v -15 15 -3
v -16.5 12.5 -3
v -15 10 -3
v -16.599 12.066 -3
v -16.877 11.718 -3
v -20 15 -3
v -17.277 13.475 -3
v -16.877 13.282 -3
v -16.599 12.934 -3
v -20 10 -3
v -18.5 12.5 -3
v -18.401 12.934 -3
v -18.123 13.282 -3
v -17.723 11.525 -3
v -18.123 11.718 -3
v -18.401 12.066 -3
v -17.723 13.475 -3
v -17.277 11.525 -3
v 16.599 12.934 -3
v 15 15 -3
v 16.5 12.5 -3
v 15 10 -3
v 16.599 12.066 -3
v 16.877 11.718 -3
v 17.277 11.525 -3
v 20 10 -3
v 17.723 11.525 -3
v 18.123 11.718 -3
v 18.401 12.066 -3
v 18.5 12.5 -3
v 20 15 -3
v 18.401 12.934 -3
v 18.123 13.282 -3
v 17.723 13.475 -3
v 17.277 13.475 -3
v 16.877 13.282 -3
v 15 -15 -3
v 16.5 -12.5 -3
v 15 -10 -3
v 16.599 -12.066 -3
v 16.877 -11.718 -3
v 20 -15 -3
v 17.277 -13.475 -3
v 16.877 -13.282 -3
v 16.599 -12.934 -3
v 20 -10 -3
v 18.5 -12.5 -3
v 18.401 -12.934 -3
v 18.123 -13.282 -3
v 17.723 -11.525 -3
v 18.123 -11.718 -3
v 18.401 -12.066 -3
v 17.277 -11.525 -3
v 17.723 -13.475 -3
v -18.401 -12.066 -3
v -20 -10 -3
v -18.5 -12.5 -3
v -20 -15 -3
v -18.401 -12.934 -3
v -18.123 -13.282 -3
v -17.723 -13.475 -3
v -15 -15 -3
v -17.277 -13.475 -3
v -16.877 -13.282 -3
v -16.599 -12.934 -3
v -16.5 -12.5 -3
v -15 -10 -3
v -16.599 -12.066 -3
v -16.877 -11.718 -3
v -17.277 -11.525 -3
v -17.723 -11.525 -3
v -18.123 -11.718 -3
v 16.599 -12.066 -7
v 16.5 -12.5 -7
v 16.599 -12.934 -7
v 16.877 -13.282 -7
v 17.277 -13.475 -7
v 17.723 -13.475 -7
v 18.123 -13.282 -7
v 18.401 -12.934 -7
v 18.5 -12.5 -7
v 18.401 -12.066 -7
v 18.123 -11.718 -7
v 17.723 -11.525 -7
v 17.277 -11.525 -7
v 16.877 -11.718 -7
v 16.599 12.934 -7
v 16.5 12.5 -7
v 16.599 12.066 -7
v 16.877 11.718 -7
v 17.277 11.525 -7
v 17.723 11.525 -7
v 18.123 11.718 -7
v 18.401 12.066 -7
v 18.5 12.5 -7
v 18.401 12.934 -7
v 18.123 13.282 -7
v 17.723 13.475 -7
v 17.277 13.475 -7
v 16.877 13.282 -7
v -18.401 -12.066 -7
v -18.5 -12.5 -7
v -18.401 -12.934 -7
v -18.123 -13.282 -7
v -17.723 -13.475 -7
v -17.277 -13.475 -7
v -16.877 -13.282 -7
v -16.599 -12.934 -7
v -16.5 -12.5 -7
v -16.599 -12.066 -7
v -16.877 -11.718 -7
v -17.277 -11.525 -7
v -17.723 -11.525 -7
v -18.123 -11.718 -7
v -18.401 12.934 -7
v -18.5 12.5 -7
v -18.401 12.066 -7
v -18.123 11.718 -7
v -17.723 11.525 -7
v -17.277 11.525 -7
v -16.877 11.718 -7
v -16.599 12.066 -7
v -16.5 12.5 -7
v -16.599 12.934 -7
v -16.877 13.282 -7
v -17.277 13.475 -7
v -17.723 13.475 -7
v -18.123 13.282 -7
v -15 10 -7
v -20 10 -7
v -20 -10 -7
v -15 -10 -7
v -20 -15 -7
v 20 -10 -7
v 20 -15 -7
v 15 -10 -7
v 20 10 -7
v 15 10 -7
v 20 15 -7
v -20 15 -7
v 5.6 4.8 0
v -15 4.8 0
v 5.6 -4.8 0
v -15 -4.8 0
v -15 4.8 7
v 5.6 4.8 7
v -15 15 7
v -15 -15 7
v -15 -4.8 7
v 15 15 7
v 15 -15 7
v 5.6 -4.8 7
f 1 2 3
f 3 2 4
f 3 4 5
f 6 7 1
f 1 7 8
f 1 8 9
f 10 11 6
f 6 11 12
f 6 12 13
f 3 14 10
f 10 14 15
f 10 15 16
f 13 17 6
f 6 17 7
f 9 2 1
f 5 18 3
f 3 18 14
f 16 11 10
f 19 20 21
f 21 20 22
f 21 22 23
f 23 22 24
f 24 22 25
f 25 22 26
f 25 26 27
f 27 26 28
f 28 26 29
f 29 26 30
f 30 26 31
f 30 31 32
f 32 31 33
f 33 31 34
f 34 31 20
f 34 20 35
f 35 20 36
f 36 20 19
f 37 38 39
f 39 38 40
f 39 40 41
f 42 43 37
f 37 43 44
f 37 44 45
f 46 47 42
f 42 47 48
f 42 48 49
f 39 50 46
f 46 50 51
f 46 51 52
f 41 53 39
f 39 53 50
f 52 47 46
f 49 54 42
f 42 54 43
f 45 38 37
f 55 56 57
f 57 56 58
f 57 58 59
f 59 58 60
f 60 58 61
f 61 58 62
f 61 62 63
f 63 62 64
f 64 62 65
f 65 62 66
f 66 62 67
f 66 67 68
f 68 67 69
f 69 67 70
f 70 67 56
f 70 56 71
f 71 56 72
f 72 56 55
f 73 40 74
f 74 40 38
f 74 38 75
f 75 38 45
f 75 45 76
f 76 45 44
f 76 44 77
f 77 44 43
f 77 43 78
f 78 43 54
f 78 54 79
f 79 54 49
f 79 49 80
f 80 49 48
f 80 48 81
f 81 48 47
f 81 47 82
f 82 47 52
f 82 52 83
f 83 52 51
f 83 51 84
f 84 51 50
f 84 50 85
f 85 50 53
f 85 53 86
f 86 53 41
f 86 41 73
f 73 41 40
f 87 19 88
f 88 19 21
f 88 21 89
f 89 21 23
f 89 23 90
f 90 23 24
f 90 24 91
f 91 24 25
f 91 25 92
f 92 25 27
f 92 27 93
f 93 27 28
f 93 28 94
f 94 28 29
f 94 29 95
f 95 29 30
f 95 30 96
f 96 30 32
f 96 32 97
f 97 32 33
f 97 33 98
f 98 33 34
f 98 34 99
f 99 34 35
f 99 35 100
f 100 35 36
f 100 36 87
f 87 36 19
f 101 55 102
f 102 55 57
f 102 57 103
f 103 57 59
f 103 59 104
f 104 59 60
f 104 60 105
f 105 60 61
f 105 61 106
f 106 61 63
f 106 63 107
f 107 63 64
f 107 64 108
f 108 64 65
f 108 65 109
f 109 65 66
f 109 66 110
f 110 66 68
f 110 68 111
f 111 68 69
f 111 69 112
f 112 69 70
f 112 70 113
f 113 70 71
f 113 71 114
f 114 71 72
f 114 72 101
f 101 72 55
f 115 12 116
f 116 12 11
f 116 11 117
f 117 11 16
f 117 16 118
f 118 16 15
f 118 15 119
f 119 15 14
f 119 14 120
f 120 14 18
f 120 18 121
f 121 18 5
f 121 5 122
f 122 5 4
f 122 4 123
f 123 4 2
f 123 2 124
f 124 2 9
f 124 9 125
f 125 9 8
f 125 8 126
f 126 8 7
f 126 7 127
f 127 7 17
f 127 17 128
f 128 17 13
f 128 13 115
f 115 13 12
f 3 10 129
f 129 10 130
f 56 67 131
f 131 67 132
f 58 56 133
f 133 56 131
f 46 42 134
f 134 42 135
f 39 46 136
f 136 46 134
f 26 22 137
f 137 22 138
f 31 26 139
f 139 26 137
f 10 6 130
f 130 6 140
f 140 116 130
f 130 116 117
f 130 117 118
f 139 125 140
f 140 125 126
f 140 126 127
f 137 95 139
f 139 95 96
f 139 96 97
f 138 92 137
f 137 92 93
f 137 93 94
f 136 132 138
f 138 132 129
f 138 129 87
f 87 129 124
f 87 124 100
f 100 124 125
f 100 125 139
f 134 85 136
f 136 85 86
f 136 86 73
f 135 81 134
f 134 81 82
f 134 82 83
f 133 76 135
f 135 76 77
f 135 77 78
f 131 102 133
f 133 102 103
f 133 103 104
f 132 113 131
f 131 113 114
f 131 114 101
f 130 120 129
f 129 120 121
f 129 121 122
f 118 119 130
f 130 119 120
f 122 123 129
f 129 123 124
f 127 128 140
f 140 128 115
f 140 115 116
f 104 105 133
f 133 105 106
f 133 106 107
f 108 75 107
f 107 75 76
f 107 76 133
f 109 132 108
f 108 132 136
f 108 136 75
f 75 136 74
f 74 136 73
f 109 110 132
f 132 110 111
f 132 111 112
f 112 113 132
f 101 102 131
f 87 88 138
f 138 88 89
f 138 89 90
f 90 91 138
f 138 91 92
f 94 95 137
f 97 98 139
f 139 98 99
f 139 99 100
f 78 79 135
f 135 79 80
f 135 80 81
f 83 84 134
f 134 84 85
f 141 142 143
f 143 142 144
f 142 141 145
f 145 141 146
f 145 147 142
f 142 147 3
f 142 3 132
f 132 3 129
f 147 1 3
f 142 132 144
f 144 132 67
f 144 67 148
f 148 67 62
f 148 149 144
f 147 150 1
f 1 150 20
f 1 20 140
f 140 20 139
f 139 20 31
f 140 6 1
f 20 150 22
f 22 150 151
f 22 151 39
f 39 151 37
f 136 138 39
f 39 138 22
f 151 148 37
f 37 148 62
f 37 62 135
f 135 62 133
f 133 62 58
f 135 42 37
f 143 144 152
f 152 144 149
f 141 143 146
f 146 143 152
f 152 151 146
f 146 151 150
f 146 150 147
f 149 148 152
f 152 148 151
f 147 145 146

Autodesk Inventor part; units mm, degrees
ref_plane "YZ Plane" through (0, 0, 0) normal (1, 0, 0) x (0, 1, 0)
ref_plane "XZ Plane" through (0, 0, 0) normal (0, 1, 0) x (-1, 0, 0)
ref_plane "XY Plane" through (0, 0, 0) normal (0, 0, 1) x (1, 0, 0)
sketch "Skizze1" plane through (0, 0, 0) normal (0, 0, 1) x (1, 0, 0)
  line L0 (-15, 15) -> (15, 15)
  line L1 (15, 15) -> (15, -15)
  line L2 (15, -15) -> (-15, -15)
  line L3 (-15, 4.8) -> (5.6, 4.8)
  line L4 (5.6, 4.8) -> (5.6, -4.8)
  line L5 (5.6, -4.8) -> (-15, -4.8)
  line L6 (-15, -15) -> (-15, -4.8)
  line L7 (-15, 4.8) -> (-15, 15)
  point P0 (0, 0)
  dimension "d0" = 30
  dimension "d1" = 30
  dimension "d2" = 15
  dimension "d3" = 15
  dimension "d4" = 9.6
  dimension "d5" = 4.8
  dimension "d6" = 5.6
extrude "Extrusion1" add sketch "Skizze1" along normal blind 7
sketch "Skizze2" plane through (0, 0, 0) normal (0, 0, -1) x (-1, 0, 0)
  line L0 (15, -15) -> (-15, -15) projected
  line L1 (15, -15) -> (-15, -15)
  line L2 (-15, -15) -> (-15, 15)
  line L3 (-15, 15) -> (15, 15)
  line L4 (15, 15) -> (15, -15)
  point P0 (0, 0)
extrude "Extrusion2" add sketch "Skizze2" along normal blind 3
sketch "Skizze3" plane through (0, 0, -3) normal (0, 0, -1) x (-1, 0, 0)
  line L0 (-15, 15) -> (15, 15) projected
  line L1 (-15, 15) -> (15, 15)
  line L2 (15, 10) -> (15, -10)
  line L3 (15, -15) -> (-15, -15)
  line L4 (15, 15) -> (20, 15)
  line L5 (20, 15) -> (20, 10)
  line L6 (20, 10) -> (15, 10)
  line L7 (-15, 0) -> (15, 0) construction
  line L8 (15, -4.8) -> (15, 4.8) projected
  line L9 (15, -15) -> (-15, -15) projected
  line L10 (0, -15) -> (0, 15) construction
  line L11 (15, -15) -> (20, -15)
  line L12 (20, -15) -> (20, -10)
  line L13 (20, -10) -> (15, -10)
  line L14 (-15, 15) -> (-20, 15)
  line L15 (-20, 15) -> (-20, 10)
  line L16 (-20, 10) -> (-15, 10)
  line L17 (-15, -10) -> (-15, 10)
  line L18 (-15, -15) -> (-20, -15)
  line L19 (-20, -15) -> (-20, -10)
  line L20 (-20, -10) -> (-15, -10)
  circle A0 centre (17.5, 12.5) radius 1
  circle A1 centre (17.5, -12.5) radius 1
  circle A2 centre (-17.5, 12.5) radius 1
  circle A3 centre (-17.5, -12.5) radius 1
  point P0 (0, 0)
  point P1 (15, -15)
  point P2 (-15, 15)
  point P3 (-15, -4.8)
  point P4 (-15, 4.8)
  point P5 (-15, -15)
  point P6 (-15, -15)
  dimension "d11" = 5
  dimension "d12" = 5
  dimension "d15" = 2
  dimension "d16" = 2.5
  dimension "d17" = 2.5
extrude "Extrusion3" add sketch "Skizze3" along normal blind 4
properties part number "PotiHalterungUnten"
